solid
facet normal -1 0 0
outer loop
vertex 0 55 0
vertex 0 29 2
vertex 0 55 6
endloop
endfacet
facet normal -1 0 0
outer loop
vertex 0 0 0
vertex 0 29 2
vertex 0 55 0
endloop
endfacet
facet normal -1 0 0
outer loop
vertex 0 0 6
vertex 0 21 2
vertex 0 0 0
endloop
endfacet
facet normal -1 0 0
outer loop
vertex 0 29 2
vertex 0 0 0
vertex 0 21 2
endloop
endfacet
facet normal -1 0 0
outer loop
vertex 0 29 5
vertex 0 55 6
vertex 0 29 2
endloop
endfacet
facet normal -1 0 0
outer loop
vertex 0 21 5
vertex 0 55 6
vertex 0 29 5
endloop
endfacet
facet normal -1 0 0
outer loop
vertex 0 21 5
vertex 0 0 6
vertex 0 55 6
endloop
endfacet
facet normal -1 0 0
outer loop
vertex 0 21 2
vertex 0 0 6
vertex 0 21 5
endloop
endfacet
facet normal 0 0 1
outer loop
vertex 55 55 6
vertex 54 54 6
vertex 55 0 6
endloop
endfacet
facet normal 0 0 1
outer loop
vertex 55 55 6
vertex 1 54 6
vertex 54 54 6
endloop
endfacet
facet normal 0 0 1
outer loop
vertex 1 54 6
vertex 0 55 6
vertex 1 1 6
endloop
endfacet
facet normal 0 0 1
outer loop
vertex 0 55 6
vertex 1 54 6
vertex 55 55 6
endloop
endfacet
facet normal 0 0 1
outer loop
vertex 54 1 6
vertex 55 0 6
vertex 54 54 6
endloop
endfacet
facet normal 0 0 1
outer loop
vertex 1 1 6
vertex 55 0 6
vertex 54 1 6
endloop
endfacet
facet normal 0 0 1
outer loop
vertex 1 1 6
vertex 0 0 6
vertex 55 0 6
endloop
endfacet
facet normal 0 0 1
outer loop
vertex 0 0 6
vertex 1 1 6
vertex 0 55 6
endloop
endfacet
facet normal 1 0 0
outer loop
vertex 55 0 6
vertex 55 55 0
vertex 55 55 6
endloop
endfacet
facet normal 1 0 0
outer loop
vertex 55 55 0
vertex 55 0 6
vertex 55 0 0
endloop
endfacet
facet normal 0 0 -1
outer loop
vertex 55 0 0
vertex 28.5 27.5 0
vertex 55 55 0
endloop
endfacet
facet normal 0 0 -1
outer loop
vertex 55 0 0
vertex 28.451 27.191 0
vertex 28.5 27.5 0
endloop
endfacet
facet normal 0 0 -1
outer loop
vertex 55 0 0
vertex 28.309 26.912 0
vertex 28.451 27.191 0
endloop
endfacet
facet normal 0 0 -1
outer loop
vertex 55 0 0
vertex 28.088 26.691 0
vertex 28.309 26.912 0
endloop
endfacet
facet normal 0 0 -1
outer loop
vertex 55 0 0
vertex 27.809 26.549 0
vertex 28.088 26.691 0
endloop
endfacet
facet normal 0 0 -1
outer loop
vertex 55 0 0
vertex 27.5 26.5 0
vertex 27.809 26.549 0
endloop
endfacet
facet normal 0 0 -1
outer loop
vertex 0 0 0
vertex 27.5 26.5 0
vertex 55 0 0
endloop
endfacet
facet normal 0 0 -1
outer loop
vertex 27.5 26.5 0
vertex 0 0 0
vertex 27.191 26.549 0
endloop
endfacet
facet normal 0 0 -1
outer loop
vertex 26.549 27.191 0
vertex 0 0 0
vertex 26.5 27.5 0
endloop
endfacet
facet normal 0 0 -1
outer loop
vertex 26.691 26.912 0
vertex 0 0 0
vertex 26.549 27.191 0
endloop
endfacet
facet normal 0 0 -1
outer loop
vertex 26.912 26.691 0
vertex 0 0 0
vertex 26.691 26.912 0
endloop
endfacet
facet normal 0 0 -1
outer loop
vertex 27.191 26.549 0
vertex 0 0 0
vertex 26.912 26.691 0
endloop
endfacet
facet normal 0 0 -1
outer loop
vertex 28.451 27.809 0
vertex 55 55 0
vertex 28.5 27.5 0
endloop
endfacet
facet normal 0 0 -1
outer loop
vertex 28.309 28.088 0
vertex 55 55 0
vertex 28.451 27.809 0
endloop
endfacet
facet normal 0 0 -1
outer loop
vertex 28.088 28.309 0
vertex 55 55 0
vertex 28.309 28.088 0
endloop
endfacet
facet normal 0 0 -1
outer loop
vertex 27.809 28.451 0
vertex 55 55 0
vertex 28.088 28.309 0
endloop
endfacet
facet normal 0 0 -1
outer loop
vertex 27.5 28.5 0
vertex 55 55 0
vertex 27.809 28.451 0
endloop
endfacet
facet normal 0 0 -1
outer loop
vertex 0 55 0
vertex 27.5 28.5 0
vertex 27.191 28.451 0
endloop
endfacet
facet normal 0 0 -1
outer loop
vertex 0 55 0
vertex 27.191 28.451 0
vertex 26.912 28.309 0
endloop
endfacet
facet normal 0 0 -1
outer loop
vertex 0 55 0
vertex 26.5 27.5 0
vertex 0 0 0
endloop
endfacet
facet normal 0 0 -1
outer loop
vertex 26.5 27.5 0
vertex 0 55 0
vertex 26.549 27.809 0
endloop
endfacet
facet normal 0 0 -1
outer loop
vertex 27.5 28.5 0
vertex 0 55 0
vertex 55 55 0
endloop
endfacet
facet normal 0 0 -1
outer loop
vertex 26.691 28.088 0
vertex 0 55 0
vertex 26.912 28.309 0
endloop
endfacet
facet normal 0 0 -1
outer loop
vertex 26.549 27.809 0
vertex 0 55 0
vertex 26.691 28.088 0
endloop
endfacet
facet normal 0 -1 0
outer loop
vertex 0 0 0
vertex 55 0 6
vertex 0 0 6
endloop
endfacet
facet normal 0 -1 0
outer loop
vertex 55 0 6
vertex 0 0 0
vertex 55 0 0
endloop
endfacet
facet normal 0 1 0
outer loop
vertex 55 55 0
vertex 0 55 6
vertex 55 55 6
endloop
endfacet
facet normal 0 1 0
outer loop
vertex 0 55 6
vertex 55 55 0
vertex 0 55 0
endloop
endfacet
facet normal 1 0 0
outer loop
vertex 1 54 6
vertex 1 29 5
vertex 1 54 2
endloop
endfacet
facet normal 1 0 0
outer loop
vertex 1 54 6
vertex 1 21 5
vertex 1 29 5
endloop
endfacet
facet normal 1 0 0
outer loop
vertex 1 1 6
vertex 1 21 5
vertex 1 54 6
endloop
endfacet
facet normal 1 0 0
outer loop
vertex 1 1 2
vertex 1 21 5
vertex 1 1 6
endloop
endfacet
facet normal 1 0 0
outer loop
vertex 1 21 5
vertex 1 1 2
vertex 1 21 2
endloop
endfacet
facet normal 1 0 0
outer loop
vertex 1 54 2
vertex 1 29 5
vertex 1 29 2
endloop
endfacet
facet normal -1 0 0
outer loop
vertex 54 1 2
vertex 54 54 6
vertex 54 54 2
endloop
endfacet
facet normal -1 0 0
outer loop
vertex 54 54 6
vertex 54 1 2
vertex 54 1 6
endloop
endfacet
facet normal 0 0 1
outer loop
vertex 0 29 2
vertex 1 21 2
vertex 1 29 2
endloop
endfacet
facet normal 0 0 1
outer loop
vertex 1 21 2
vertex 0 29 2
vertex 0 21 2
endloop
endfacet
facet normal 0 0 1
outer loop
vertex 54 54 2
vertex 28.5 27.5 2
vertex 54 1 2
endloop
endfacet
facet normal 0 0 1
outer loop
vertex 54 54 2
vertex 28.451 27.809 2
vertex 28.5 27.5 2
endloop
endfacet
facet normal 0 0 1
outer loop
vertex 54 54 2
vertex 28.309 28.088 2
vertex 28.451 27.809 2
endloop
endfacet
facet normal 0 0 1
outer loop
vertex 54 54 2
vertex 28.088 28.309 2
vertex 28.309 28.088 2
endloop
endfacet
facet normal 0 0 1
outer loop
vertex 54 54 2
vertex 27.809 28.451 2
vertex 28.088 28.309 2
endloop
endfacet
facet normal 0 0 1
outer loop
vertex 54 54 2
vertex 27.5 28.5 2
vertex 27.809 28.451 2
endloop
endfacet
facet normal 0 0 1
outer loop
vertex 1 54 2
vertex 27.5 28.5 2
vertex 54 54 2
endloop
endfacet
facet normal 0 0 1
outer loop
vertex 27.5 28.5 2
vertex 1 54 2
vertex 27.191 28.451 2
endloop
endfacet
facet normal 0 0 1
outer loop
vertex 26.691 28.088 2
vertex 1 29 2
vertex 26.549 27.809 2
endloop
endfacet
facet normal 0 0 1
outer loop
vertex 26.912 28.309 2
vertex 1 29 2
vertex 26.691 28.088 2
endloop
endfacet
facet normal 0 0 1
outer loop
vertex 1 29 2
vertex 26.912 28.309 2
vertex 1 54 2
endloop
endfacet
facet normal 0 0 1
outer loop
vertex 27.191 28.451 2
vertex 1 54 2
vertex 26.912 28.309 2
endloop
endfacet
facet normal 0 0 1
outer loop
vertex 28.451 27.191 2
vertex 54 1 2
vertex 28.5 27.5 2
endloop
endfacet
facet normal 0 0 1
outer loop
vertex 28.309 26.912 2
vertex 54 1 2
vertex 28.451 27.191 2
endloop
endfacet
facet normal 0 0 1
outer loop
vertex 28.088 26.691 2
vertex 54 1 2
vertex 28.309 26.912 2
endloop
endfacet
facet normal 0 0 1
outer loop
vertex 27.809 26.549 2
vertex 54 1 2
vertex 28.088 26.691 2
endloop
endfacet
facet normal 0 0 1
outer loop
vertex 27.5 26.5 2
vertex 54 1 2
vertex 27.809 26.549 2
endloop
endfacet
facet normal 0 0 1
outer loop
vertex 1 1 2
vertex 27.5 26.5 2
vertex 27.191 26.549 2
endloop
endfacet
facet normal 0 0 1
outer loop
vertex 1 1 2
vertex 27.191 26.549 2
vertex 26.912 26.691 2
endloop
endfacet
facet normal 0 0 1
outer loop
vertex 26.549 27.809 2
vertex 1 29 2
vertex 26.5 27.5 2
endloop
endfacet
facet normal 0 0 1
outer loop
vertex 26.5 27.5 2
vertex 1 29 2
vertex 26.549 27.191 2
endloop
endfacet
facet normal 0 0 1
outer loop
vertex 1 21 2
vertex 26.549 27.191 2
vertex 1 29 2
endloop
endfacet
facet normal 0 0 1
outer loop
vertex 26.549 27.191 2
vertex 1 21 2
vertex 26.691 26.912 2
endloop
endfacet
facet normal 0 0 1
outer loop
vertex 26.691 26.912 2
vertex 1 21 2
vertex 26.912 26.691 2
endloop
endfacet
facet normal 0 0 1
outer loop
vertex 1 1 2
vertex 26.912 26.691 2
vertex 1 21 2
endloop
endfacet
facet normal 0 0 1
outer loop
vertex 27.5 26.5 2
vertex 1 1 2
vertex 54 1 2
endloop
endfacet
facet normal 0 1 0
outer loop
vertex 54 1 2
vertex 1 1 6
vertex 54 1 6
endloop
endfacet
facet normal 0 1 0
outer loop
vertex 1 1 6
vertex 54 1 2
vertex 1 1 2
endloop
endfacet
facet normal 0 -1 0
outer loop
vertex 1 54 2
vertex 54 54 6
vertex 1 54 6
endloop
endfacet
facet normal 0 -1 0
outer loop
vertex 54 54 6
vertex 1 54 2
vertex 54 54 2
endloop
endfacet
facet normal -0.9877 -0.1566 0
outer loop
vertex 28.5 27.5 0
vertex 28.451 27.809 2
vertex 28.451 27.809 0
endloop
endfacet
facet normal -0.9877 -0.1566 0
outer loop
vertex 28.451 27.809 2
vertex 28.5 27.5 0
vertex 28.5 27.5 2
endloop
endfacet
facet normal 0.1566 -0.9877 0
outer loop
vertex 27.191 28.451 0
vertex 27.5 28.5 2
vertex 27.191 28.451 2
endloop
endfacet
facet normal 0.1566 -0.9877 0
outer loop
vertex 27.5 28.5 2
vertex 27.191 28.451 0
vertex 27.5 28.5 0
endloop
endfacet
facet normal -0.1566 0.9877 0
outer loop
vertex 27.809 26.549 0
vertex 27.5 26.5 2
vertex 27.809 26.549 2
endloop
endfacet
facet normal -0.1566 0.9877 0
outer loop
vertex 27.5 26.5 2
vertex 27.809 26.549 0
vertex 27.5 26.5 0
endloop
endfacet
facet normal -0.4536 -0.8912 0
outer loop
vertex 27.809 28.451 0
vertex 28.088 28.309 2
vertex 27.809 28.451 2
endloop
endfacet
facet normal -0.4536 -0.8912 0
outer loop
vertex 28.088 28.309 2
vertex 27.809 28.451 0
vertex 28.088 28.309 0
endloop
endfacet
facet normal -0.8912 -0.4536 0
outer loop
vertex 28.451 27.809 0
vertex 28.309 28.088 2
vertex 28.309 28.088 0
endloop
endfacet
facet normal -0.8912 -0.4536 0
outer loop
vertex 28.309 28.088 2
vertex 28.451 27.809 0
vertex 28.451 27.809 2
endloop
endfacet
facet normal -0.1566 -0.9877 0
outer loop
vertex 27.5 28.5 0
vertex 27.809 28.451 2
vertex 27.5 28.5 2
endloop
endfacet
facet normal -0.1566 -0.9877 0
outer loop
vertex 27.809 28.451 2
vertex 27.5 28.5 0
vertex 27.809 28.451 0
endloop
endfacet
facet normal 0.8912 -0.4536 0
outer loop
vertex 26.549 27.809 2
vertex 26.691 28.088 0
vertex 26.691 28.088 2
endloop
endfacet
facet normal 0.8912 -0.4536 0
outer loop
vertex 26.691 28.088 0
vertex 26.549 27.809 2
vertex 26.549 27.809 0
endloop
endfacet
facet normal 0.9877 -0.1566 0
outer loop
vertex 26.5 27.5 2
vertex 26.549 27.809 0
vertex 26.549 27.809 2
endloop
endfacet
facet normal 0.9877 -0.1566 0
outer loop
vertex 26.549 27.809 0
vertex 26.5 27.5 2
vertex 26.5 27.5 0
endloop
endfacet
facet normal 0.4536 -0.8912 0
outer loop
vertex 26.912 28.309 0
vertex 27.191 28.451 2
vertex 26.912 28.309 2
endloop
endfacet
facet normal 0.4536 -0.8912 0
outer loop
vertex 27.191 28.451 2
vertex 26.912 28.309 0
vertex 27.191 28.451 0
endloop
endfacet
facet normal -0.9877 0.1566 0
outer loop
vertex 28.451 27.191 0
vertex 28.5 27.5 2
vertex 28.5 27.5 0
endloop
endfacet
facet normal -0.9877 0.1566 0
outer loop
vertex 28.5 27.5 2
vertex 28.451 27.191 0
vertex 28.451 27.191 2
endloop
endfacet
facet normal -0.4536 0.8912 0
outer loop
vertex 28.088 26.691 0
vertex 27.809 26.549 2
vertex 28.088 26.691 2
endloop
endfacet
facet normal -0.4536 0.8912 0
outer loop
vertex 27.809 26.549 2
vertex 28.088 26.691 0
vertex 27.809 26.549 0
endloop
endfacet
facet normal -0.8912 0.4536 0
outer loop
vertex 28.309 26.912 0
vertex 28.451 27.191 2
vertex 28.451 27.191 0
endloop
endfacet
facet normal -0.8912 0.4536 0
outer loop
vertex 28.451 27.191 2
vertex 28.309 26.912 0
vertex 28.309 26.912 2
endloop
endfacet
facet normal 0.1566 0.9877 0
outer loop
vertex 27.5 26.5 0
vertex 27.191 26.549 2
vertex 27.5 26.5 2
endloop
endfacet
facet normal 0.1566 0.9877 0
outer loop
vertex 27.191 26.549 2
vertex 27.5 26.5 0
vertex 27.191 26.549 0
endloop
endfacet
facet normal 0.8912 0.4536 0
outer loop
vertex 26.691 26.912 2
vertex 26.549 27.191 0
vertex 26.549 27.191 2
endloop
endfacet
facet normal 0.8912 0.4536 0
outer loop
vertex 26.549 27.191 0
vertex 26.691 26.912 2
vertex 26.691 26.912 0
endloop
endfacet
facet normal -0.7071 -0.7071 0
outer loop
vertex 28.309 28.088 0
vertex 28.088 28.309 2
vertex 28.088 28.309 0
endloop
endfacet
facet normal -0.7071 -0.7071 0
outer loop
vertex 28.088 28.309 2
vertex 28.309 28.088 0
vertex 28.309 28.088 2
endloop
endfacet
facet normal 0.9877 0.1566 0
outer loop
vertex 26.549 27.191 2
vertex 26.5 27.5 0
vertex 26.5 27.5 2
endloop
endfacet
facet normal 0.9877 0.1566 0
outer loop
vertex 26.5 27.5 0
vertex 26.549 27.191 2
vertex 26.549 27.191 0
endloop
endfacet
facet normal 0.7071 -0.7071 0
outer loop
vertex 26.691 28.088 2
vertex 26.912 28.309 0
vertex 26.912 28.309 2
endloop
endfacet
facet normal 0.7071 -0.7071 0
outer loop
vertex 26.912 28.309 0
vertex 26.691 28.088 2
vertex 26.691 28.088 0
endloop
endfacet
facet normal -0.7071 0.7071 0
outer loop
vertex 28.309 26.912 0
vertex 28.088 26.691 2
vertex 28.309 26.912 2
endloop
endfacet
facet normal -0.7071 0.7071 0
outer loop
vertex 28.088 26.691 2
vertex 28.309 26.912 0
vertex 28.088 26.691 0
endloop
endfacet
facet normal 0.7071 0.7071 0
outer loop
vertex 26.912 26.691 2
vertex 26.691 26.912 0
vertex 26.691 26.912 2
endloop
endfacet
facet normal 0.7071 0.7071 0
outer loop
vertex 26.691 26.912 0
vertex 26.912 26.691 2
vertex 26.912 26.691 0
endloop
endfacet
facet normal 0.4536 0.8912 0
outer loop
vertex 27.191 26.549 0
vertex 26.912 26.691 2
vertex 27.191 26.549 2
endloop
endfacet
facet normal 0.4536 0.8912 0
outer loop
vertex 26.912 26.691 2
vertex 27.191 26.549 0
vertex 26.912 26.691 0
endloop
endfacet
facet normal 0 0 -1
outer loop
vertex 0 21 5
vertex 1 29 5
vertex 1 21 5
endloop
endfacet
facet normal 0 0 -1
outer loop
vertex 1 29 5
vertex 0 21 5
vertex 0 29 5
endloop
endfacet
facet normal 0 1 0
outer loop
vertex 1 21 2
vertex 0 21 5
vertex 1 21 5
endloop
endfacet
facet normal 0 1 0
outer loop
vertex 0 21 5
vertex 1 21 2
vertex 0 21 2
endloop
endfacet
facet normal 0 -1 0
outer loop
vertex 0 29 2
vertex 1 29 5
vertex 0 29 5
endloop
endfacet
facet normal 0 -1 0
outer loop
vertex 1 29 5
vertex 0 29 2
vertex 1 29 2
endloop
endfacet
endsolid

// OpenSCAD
$fn = 20;
wallHeight = 6;
postDiameter = 1;
 
difference()
{
    cube([55,55,wallHeight],false);
    translate([1,1,2]) cube([53,53,wallHeight],false);
    translate([27.5,27.5,0]) cylinder(wallHeight,postDiameter,false);
    translate([-2,21,2]) cube([3,8,3],false);
}
